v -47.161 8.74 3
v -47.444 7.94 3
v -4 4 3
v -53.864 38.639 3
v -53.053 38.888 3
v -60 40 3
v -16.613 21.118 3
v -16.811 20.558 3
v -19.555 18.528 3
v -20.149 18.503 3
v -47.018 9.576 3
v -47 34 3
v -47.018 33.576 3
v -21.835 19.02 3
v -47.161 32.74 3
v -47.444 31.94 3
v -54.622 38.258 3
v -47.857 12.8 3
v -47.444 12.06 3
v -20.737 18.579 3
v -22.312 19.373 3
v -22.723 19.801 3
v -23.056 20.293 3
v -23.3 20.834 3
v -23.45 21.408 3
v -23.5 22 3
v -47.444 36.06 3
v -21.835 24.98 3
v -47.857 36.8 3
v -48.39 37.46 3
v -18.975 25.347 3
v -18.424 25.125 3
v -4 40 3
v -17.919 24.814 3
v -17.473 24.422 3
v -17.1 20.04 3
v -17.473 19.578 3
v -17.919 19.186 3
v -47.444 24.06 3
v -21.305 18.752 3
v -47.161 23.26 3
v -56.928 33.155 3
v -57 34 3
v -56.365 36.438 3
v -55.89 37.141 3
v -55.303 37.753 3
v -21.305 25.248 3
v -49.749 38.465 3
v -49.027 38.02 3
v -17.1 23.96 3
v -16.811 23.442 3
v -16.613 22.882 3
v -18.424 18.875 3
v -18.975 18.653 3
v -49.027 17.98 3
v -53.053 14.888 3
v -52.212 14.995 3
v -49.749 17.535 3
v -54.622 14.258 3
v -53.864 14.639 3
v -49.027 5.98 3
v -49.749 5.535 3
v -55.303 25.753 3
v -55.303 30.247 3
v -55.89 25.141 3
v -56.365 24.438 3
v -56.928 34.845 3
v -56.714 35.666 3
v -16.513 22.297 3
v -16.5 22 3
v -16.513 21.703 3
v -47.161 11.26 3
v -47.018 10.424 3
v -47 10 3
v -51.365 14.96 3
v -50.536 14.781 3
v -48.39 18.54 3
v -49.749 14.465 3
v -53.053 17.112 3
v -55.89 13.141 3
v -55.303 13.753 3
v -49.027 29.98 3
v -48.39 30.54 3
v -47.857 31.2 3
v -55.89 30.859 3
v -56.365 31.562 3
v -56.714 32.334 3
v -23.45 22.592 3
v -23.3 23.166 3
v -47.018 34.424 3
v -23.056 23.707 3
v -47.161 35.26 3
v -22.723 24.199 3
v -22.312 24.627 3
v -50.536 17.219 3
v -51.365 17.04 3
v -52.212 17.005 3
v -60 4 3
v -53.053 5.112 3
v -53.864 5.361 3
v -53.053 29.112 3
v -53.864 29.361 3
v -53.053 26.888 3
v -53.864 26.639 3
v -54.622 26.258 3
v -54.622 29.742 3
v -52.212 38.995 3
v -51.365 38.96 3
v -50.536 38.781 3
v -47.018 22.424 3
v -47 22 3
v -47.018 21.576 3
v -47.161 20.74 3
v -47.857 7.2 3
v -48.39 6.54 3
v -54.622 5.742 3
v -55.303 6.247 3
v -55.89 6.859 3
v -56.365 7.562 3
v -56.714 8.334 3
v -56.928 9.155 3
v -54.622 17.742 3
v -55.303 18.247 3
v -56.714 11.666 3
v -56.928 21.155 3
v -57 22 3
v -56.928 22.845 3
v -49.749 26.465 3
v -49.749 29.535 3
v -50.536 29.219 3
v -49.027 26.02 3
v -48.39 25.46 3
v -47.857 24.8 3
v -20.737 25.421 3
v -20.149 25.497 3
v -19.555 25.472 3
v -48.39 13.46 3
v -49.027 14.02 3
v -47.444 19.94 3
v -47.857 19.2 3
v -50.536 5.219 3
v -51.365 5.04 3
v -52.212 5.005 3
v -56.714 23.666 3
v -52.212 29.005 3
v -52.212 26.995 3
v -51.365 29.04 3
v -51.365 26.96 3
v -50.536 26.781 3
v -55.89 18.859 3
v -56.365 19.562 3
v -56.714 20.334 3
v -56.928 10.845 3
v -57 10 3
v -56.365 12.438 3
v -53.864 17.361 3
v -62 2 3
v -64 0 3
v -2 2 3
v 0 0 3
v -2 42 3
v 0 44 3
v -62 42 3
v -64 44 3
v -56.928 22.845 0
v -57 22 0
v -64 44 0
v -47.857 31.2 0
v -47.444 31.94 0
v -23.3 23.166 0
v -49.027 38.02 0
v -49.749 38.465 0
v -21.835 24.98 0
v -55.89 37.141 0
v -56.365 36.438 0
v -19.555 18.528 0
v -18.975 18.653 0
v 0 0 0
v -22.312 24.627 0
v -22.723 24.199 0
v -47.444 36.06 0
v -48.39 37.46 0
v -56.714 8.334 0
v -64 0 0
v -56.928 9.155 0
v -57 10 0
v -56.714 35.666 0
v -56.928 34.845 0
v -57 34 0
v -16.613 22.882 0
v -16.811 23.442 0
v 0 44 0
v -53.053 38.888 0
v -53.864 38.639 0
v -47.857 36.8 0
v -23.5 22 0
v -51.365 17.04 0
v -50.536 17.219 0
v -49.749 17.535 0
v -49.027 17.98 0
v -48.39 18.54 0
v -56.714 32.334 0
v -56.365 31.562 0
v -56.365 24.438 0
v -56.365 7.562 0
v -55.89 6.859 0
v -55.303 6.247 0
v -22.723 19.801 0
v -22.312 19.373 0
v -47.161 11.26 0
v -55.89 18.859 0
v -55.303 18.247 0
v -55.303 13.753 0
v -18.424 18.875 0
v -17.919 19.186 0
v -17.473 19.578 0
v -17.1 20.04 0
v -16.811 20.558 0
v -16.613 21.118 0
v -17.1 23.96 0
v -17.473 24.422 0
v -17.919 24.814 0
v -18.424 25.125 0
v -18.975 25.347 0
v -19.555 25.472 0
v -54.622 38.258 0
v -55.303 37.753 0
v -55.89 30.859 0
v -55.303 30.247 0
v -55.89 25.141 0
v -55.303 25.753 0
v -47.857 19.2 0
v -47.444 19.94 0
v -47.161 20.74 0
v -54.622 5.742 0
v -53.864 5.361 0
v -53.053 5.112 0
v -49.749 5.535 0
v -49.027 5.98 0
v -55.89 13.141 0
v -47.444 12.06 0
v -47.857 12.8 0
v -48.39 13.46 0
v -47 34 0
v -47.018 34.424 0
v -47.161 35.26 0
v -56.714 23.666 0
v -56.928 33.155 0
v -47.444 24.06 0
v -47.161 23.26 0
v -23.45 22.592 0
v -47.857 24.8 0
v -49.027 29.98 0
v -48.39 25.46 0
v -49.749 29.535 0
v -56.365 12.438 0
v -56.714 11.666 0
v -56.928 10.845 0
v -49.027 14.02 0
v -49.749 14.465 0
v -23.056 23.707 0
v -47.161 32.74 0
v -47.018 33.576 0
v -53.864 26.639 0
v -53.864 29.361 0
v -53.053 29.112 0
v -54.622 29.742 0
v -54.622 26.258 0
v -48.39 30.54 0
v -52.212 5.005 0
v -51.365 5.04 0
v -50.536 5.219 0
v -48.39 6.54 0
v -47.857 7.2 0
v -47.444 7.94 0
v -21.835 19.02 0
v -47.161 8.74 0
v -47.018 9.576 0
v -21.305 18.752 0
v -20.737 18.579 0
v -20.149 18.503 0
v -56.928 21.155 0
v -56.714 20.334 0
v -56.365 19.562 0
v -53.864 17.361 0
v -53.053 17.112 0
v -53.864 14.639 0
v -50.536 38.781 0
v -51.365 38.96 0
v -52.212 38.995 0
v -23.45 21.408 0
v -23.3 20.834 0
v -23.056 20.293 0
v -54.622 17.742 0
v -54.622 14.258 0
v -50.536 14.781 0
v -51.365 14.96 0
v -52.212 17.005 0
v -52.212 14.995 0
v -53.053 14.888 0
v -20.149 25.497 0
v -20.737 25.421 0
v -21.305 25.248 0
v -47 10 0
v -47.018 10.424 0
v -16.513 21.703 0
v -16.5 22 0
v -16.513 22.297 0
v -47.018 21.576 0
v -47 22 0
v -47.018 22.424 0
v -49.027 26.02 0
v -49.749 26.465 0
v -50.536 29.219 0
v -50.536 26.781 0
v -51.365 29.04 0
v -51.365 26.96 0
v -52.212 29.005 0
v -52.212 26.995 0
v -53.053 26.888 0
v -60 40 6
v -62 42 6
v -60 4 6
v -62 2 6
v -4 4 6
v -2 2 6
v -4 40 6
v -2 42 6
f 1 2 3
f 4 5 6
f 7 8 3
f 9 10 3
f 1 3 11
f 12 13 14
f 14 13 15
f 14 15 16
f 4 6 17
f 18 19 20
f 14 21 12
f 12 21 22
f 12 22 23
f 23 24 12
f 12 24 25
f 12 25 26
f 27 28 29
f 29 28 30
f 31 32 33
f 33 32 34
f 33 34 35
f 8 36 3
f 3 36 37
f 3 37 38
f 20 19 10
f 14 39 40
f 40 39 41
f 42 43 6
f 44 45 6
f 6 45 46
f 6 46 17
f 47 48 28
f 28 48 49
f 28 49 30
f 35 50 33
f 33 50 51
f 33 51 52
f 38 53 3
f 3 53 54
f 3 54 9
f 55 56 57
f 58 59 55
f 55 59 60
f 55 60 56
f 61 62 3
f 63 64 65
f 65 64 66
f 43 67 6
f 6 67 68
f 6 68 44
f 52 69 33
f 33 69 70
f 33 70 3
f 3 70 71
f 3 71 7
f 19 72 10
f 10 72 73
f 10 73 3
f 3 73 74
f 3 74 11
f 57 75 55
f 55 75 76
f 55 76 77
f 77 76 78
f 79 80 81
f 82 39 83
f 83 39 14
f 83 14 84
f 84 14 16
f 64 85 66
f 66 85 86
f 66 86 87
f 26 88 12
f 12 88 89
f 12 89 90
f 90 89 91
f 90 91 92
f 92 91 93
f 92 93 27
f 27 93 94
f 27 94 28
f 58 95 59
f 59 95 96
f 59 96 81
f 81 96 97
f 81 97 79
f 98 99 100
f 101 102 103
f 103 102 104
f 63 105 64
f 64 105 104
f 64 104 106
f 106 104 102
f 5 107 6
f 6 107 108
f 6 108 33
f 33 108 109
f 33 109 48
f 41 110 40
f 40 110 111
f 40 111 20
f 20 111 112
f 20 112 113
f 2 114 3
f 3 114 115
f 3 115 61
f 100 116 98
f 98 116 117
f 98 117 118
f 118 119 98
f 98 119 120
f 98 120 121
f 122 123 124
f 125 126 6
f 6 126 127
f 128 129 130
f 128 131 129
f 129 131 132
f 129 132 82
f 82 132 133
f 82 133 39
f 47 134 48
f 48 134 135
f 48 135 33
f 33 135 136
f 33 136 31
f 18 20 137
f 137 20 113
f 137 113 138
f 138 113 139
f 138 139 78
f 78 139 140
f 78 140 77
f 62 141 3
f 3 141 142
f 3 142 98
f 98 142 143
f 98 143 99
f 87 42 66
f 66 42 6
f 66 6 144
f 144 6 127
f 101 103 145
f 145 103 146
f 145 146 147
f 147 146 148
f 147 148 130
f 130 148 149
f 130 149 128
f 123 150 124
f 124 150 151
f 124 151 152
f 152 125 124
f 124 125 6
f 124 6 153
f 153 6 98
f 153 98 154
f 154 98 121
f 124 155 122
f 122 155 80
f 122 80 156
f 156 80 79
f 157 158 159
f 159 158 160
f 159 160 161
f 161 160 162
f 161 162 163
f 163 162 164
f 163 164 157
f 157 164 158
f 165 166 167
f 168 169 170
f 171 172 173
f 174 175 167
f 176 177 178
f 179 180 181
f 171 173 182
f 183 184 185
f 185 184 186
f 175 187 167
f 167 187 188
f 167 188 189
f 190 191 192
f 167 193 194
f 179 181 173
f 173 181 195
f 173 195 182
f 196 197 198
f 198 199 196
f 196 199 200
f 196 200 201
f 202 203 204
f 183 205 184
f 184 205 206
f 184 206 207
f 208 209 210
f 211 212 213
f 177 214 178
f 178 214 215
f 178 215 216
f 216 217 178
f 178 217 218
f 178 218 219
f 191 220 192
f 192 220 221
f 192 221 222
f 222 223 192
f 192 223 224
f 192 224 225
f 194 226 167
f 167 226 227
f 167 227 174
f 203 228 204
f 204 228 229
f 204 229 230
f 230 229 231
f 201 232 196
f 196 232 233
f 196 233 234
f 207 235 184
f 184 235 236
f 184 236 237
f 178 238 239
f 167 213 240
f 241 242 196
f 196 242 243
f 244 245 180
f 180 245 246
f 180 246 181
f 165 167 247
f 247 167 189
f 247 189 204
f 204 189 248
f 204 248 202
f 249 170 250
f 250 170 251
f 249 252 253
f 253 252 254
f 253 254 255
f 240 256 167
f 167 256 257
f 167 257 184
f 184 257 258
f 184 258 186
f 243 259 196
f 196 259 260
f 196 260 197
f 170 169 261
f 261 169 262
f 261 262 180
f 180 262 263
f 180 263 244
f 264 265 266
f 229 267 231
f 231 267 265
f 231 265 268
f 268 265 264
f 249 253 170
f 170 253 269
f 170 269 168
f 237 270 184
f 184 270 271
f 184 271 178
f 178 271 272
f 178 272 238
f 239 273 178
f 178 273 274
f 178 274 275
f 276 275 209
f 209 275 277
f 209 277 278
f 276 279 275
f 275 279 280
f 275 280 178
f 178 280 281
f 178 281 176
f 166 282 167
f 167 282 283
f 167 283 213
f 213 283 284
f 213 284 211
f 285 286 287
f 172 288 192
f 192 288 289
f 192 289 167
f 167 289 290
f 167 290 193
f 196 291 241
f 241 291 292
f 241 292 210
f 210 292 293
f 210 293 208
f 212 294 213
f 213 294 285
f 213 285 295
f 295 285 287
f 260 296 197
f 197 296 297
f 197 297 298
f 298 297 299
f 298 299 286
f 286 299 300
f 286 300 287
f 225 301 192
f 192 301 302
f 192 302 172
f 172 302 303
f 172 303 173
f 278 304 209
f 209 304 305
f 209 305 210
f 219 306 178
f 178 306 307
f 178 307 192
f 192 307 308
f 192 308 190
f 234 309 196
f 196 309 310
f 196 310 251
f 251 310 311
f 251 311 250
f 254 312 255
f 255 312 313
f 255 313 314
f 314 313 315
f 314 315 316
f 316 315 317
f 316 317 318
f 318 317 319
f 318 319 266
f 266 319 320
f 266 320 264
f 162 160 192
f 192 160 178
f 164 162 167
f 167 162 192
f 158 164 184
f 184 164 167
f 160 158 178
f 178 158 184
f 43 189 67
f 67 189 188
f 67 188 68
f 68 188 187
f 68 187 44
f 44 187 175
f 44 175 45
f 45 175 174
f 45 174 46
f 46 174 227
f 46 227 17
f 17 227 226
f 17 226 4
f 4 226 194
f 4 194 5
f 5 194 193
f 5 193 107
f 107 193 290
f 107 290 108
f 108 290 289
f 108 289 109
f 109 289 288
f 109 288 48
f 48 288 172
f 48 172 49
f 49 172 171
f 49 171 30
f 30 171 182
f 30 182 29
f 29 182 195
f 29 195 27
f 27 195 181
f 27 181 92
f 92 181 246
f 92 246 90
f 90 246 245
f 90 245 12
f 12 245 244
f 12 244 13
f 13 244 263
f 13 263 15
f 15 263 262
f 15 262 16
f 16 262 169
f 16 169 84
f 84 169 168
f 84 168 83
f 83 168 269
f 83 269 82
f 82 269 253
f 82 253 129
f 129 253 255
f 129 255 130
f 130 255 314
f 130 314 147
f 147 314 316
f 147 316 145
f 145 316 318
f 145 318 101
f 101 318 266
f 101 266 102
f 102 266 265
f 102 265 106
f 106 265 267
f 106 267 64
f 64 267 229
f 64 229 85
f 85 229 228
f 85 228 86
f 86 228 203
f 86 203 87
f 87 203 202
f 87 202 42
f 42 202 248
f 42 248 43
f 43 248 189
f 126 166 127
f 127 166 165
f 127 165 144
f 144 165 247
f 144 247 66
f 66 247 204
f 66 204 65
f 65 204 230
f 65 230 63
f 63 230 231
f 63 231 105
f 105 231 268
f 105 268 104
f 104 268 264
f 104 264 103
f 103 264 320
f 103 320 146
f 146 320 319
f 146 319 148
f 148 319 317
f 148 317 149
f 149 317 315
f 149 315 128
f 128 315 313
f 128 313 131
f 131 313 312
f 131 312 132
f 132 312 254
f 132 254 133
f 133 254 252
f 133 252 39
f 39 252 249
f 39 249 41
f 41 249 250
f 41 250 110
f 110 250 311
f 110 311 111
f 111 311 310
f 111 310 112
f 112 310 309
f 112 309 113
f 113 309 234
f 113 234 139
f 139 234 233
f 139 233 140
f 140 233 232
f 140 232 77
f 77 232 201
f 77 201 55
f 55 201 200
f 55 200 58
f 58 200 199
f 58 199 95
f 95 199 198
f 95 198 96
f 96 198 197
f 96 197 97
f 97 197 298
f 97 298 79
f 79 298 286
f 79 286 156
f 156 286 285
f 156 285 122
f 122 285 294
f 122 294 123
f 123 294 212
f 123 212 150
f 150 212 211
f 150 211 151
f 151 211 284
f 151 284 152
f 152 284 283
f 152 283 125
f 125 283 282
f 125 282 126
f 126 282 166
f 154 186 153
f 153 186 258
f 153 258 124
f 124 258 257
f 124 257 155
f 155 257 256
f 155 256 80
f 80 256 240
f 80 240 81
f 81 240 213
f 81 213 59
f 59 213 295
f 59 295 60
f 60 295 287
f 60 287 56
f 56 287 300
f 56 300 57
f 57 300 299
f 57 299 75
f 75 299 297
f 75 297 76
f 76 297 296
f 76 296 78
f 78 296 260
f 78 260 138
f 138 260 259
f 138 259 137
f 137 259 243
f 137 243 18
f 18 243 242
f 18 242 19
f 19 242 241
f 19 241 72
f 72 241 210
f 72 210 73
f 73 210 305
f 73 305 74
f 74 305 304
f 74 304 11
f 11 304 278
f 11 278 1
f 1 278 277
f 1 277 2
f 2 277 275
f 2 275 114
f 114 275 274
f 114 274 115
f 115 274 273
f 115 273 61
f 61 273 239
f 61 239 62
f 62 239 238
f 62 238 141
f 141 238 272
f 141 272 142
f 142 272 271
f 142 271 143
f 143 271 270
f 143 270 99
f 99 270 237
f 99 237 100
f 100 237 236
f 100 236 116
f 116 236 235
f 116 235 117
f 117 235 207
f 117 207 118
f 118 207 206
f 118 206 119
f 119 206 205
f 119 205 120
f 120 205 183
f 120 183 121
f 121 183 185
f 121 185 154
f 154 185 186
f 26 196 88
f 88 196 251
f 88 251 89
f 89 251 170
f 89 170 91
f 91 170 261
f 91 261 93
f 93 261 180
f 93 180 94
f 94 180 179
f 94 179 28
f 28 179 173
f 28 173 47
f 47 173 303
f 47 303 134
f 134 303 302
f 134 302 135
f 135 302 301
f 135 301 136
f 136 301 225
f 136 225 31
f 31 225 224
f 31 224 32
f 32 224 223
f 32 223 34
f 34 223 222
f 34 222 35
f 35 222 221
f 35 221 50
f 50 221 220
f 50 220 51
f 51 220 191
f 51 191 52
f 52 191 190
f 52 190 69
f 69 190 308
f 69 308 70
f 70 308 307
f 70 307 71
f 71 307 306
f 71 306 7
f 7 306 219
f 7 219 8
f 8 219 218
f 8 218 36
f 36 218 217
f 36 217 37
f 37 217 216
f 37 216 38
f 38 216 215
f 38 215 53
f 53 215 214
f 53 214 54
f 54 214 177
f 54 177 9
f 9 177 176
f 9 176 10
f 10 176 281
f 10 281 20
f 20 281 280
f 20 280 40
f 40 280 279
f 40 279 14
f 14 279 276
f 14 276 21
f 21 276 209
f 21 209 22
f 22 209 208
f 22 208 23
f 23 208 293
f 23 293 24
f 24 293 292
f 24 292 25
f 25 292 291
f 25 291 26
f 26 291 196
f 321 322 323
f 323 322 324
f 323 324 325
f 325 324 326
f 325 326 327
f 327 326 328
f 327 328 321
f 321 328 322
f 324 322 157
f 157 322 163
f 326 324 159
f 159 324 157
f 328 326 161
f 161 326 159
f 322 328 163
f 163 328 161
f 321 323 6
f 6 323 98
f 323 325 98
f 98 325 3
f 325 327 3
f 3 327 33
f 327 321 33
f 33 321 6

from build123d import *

# Parameters (mm, degrees)
CROQUIS1_W              = 64
CROQUIS1_H              = 44
CROQUIS1_R              = 5
CROQUIS1_R_2            = 3.5
SALIENTE_EXTRUIR1_DEPTH = 3
CROQUIS3_W              = 60
CROQUIS3_H              = 40
CROQUIS3_W_2            = 56
CROQUIS3_H_2            = 36
SALIENTE_EXTRUIR2_DEPTH = 3


with BuildPart() as part:
    # Croquis1 → Saliente-Extruir1 (new body)
    with BuildSketch(Plane.XY):
        with Locations((-32, 22)):
            Rectangle(CROQUIS1_W, CROQUIS1_H)
        with Locations((-52, 34)):
            Circle(CROQUIS1_R, mode=Mode.SUBTRACT)
        with Locations((-52, 10)):
            Circle(CROQUIS1_R, mode=Mode.SUBTRACT)
        with Locations((-20, 22)):
            Circle(CROQUIS1_R_2, mode=Mode.SUBTRACT)
        with Locations((-52, 22)):
            Circle(CROQUIS1_R, mode=Mode.SUBTRACT)
    extrude(amount=SALIENTE_EXTRUIR1_DEPTH)

    # Croquis3 → Saliente-Extruir2 (add)
    with BuildSketch(Plane.XY.offset(3)):
        with Locations((-32, 22)):
            Rectangle(CROQUIS3_W, CROQUIS3_H)
        with Locations((-32, 22)):
            Rectangle(CROQUIS3_W_2, CROQUIS3_H_2, mode=Mode.SUBTRACT)
    extrude(amount=SALIENTE_EXTRUIR2_DEPTH)


solid = part.part
